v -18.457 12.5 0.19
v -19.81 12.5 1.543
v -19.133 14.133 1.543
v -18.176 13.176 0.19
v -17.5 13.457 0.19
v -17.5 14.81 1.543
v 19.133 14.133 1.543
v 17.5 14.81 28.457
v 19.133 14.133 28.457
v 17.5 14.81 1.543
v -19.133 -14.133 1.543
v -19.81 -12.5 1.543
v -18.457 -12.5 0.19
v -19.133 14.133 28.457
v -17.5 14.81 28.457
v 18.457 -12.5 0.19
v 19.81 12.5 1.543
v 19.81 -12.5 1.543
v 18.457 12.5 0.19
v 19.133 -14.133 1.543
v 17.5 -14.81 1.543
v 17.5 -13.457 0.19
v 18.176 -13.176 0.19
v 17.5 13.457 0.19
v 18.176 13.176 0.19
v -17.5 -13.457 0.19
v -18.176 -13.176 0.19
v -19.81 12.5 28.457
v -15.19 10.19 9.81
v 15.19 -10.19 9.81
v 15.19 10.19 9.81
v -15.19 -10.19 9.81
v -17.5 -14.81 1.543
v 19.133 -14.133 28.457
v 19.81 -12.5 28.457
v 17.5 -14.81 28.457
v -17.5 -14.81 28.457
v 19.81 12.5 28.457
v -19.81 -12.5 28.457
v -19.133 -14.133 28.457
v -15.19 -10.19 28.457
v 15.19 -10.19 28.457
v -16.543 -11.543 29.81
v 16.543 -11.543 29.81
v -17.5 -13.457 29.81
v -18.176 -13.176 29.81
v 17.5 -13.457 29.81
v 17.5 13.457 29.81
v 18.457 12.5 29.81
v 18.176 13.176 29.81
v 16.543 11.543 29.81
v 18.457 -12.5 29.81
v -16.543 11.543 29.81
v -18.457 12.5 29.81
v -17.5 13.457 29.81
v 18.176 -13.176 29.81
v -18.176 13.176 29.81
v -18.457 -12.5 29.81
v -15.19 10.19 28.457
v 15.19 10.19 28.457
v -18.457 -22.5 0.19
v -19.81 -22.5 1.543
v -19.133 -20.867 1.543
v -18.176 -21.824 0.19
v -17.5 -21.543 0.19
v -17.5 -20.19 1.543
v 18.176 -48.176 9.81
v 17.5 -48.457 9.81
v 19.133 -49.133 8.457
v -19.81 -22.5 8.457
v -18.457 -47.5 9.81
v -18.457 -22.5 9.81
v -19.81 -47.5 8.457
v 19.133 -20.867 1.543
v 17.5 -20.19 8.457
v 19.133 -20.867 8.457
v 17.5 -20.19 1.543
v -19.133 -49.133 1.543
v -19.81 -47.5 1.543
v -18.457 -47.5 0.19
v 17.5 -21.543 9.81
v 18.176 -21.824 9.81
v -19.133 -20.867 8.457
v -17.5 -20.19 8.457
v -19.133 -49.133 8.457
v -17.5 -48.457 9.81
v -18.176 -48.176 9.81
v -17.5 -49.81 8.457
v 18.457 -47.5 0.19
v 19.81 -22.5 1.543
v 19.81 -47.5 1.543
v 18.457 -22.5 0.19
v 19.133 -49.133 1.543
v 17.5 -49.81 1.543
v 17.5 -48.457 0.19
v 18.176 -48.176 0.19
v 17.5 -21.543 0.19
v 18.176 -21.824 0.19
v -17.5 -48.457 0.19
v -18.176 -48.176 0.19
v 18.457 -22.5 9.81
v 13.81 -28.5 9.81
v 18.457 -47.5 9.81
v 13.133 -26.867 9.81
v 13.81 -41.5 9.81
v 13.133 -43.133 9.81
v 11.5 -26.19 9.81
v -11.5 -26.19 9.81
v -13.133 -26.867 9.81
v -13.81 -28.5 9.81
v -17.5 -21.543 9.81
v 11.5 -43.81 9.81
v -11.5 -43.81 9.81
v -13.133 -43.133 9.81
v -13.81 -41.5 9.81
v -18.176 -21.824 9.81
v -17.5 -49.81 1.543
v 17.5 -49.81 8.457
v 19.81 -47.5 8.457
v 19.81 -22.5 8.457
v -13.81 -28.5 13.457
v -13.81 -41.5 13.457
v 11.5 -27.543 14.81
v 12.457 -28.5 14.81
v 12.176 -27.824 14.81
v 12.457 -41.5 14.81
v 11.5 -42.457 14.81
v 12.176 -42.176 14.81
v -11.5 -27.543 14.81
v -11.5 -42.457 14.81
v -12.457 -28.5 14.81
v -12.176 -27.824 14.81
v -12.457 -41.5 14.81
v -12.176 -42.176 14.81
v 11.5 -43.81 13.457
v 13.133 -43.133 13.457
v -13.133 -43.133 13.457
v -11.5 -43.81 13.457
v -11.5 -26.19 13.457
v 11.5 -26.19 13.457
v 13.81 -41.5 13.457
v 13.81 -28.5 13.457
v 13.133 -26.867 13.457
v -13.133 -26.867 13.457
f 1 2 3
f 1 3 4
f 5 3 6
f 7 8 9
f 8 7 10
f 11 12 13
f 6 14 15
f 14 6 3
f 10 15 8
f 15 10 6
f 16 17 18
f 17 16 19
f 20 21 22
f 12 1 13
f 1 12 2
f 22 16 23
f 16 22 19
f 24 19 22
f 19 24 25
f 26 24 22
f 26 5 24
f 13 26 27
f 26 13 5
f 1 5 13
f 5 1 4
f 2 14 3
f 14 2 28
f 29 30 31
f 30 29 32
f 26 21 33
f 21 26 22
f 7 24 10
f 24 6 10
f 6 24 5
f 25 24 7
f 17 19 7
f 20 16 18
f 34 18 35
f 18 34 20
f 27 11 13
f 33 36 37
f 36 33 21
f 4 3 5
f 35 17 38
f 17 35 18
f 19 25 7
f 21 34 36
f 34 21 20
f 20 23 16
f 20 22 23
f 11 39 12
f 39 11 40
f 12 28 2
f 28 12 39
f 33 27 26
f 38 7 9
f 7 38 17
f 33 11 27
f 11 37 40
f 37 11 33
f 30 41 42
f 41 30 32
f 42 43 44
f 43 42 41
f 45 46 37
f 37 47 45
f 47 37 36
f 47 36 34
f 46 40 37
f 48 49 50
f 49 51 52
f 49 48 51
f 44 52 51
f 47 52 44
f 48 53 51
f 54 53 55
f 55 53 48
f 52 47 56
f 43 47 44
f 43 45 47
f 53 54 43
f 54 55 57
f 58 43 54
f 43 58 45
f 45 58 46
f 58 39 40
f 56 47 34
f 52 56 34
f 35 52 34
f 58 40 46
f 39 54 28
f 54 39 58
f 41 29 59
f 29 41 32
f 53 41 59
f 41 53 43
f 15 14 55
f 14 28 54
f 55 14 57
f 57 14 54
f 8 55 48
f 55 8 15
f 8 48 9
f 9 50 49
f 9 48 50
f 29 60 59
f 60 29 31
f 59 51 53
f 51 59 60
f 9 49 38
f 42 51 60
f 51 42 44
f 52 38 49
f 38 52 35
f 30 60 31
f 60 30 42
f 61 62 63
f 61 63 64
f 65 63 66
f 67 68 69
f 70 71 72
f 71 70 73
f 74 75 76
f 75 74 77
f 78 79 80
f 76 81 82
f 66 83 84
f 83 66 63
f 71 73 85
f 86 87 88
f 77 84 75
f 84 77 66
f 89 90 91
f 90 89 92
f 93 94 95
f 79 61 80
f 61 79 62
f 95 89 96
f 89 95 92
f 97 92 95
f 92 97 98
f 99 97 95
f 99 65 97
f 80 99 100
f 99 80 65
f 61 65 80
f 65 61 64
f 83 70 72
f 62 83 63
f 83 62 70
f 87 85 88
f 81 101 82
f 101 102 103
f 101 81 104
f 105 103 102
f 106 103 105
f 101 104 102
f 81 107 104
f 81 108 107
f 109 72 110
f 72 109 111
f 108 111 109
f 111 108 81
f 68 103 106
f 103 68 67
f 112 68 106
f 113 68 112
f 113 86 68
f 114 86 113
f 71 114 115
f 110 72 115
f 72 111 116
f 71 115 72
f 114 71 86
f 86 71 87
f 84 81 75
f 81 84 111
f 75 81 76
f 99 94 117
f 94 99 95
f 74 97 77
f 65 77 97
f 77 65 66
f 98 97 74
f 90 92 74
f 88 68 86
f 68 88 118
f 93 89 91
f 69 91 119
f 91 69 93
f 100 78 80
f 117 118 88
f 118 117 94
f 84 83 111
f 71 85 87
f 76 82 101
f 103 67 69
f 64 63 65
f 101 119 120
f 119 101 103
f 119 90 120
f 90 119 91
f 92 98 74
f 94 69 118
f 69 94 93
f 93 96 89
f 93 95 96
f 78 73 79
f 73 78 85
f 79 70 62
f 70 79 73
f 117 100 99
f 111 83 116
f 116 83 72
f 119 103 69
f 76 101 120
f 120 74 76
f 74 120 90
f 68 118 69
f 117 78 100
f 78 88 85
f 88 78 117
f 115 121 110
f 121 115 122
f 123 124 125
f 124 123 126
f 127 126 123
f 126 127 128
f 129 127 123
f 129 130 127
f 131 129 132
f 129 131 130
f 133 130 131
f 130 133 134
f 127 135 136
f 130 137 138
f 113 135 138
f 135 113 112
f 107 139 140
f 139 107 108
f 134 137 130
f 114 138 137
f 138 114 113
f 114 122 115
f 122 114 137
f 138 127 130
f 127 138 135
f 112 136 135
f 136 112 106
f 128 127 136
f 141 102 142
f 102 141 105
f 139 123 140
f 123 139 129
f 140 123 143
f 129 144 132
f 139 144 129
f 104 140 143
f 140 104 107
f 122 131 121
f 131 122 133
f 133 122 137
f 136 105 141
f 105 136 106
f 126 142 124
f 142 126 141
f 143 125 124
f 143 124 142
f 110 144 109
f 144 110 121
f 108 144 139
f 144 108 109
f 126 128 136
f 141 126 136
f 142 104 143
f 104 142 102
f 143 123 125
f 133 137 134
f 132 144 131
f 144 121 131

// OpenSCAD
module hullPlane(x, y, thickness) {
    translate([thickness/2, thickness/2, thickness/2])
        hull() {
            sphere(d=thickness);
            translate([x-thickness, 0, 0])
                sphere(d=thickness);
            translate([0, y-thickness, 0])
                sphere(d=thickness);
            translate([x-thickness, y-thickness, 0])
                sphere(d=thickness);
        }
}

module hullCube(x, y, z, thickness) {
    hull() {
        hullPlane(x, y, thickness);
        translate([0, 0, z])
            hullPlane(x, y, thickness);
    }
}

module hullBox(innerX, innerY, innerZ, thickness) {
    translate([-innerX/2-thickness, -innerY/2-thickness, 0]) {
        hullCube(innerX+2*thickness, innerY+2*thickness, thickness, thickness); // bottom
        hullCube(innerX+2*thickness, thickness, innerZ+3*thickness, thickness); //front
        hullCube(thickness, innerY+2*thickness, innerZ+3*thickness, thickness); // left
        translate([0, innerY+thickness, 0])
            hullCube(innerX+2*thickness, thickness, innerZ+3*thickness, thickness); // back
        translate([innerX+thickness, 0, 0])
            hullCube(thickness, innerY+2*thickness, innerZ+3*thickness, thickness); // right
    }
}

module hullLid(innerX, innerY, innerZ, thickness) {
    translate([-innerX/2-thickness, -innerY/2-thickness, 0]) {
        translate([0, -innerY-thickness-thickness-thickness, 0]) {
            hullCube(innerX+2*thickness, innerY+2*thickness, thickness, thickness);
            translate([thickness+1, thickness+1, 0])
                hullCube(innerX-2, innerY-2, thickness*2, thickness);
        }
    }
}

hullBox(30, 20, 10, 5);
hullLid(30, 20, 10, 5);
